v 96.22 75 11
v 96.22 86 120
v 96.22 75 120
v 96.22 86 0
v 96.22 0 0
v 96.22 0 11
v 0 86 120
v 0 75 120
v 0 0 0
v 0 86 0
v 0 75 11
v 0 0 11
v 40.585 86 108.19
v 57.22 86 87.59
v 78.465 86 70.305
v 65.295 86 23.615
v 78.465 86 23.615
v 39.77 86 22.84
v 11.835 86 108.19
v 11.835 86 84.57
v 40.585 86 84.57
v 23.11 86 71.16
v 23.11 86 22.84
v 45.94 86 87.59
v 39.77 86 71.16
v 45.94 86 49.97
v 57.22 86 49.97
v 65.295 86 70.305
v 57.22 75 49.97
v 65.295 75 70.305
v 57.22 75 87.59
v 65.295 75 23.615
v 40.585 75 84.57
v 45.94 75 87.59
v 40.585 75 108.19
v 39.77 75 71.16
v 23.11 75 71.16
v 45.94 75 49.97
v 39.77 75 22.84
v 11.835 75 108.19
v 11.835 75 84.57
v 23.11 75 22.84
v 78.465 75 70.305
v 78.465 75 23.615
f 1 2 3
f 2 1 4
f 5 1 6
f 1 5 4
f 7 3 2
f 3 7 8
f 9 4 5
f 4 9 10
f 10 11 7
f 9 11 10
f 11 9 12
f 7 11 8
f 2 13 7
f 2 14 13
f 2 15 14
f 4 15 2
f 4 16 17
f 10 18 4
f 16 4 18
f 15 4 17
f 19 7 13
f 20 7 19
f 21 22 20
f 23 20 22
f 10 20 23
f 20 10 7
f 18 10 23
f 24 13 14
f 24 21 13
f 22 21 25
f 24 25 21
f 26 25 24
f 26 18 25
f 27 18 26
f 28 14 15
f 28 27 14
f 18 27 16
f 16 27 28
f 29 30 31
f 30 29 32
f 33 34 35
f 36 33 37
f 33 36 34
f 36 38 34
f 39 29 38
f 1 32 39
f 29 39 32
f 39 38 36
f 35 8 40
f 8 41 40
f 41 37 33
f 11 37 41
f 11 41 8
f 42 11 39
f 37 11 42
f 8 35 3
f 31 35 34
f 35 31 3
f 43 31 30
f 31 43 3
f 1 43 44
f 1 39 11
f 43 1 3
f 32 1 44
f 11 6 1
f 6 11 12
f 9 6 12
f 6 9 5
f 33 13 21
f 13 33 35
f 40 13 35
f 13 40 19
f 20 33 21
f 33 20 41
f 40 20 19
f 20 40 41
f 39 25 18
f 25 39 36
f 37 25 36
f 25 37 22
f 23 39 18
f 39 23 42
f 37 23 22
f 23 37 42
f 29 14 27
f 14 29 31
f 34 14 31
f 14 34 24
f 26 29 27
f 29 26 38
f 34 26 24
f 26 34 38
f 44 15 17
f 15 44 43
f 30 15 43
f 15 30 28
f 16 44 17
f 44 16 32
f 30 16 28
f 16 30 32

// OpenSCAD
/* doodle-meta {"version":1,"parameters":{"width":{"label":"Overall width","description":"Changes the body width","unit":"mm","feature":"body_width"},"depth":{"label":"Overall depth","description":"Changes the body depth","unit":"mm","feature":"body_depth"},"height":{"label":"Overall height","description":"Changes the body height","unit":"mm","feature":"body_height"},"vertical_leg_thickness":{"label":"Vertical leg thickness","description":"Thickness of the vertical leg (Y-direction)","unit":"mm","feature":"leg_thickness"},"horizontal_leg_thickness":{"label":"Horizontal leg thickness","description":"Thickness of the horizontal leg (Z-direction)","unit":"mm","feature":"leg_thickness"},"cutout1_w":{"label":"Cutout 1 width","description":"Width of the upper-left cutout","unit":"mm","feature":"cutout_1"},"cutout1_h":{"label":"Cutout 1 height","description":"Height of the upper-left cutout","unit":"mm","feature":"cutout_1"},"cutout2_w":{"label":"Cutout 2 width","description":"Width of the lower-left slot","unit":"mm","feature":"cutout_2"},"cutout2_h":{"label":"Cutout 2 height","description":"Height of the lower-left slot","unit":"mm","feature":"cutout_2"},"cutout3_w":{"label":"Cutout 3 width","description":"Width of the center slot","unit":"mm","feature":"cutout_3"},"cutout3_h":{"label":"Cutout 3 height","description":"Height of the center slot","unit":"mm","feature":"cutout_3"},"cutout4_w":{"label":"Cutout 4 width","description":"Width of the lower-right slot","unit":"mm","feature":"cutout_4"},"cutout4_h":{"label":"Cutout 4 height","description":"Height of the lower-right slot","unit":"mm","feature":"cutout_4"}},"features":{"body_width":{"kind":"dimension","axis":"x","label":"Overall width"},"body_depth":{"kind":"dimension","axis":"y","label":"Overall depth"},"body_height":{"kind":"dimension","axis":"z","label":"Overall height"},"leg_thickness":{"kind":"dimension","axis":"z","label":"Leg thickness"},"cutout_1":{"kind":"region","label":"Upper-left cutout","min":[{"parameter":"cutout1_x","scale":1,"offset":0},{"parameter":"cutout1_y","scale":1,"offset":0},{"parameter":"cutout1_z","scale":1,"offset":0}],"max":[{"parameter":"cutout1_x","scale":1,"offset":0},{"parameter":"cutout1_y","scale":1,"offset":0},{"parameter":"cutout1_z","scale":1,"offset":0}]},"cutout_2":{"kind":"region","label":"Lower-left slot","min":[{"parameter":"cutout2_x","scale":1,"offset":0},{"parameter":"cutout2_y","scale":1,"offset":0},{"parameter":"cutout2_z","scale":1,"offset":0}],"max":[{"parameter":"cutout2_x","scale":1,"offset":0},{"parameter":"cutout2_y","scale":1,"offset":0},{"parameter":"cutout2_z","scale":1,"offset":0}]},"cutout_3":{"kind":"region","label":"Center slot","min":[{"parameter":"cutout3_x","scale":1,"offset":0},{"parameter":"cutout3_y","scale":1,"offset":0},{"parameter":"cutout3_z","scale":1,"offset":0}],"max":[{"parameter":"cutout3_x","scale":1,"offset":0},{"parameter":"cutout3_y","scale":1,"offset":0},{"parameter":"cutout3_z","scale":1,"offset":0}]},"cutout_4":{"kind":"region","label":"Lower-right slot","min":[{"parameter":"cutout4_x","scale":1,"offset":0},{"parameter":"cutout4_y","scale":1,"offset":0},{"parameter":"cutout4_z","scale":1,"offset":0}],"max":[{"parameter":"cutout4_x","scale":1,"offset":0},{"parameter":"cutout4_y","scale":1,"offset":0},{"parameter":"cutout4_z","scale":1,"offset":0}]}}} */

// Top-level editable parameters
width = 96.22;
depth = 86.0;
height = 120.0;
vertical_leg_thickness = 11.0;
horizontal_leg_thickness = 11.0;

// Cutout 1 (upper-left)
cutout1_w = 28.75;
cutout1_h = 23.62;
cutout1_x = 26.21;
cutout1_z = 96.38;

// Cutout 2 (lower-left)
cutout2_w = 16.66;
cutout2_h = 48.32;
cutout2_x = 31.44;
cutout2_z = 47.0;

// Cutout 3 (center)
cutout3_w = 11.28;
cutout3_h = 37.62;
cutout3_x = 51.58;
cutout3_z = 68.78;

// Cutout 4 (lower-right)
cutout4_w = 13.17;
cutout4_h = 46.69;
cutout4_x = 71.88;
cutout4_z = 46.96;

// Derived sizes (not editable)
eps = 0.01;

// Modules
module l_bracket_body() {
    // Vertical leg (back, high Y)
    translate([0, depth - vertical_leg_thickness, 0])
        cube([width, vertical_leg_thickness, height]);
    // Horizontal leg (bottom, extends forward from Y=0 to Y=depth)
    translate([0, 0, 0])
        cube([width, depth, horizontal_leg_thickness]);
}

module cutout_cutter(w, h, x, z) {
    // Through-cut along Y (front view openings)
    translate([x - w/2, -eps, z - h/2])
        cube([w, depth + 2*eps, h]);
}

// Main design
difference() {
    l_bracket_body();
    
    // Cutout 1: upper-left
    cutout_cutter(cutout1_w, cutout1_h, cutout1_x, cutout1_z);
    
    // Cutout 2: lower-left
    cutout_cutter(cutout2_w, cutout2_h, cutout2_x, cutout2_z);
    
    // Cutout 3: center
    cutout_cutter(cutout3_w, cutout3_h, cutout3_x, cutout3_z);
    
    // Cutout 4: lower-right
    cutout_cutter(cutout4_w, cutout4_h, cutout4_x, cutout4_z);
}
